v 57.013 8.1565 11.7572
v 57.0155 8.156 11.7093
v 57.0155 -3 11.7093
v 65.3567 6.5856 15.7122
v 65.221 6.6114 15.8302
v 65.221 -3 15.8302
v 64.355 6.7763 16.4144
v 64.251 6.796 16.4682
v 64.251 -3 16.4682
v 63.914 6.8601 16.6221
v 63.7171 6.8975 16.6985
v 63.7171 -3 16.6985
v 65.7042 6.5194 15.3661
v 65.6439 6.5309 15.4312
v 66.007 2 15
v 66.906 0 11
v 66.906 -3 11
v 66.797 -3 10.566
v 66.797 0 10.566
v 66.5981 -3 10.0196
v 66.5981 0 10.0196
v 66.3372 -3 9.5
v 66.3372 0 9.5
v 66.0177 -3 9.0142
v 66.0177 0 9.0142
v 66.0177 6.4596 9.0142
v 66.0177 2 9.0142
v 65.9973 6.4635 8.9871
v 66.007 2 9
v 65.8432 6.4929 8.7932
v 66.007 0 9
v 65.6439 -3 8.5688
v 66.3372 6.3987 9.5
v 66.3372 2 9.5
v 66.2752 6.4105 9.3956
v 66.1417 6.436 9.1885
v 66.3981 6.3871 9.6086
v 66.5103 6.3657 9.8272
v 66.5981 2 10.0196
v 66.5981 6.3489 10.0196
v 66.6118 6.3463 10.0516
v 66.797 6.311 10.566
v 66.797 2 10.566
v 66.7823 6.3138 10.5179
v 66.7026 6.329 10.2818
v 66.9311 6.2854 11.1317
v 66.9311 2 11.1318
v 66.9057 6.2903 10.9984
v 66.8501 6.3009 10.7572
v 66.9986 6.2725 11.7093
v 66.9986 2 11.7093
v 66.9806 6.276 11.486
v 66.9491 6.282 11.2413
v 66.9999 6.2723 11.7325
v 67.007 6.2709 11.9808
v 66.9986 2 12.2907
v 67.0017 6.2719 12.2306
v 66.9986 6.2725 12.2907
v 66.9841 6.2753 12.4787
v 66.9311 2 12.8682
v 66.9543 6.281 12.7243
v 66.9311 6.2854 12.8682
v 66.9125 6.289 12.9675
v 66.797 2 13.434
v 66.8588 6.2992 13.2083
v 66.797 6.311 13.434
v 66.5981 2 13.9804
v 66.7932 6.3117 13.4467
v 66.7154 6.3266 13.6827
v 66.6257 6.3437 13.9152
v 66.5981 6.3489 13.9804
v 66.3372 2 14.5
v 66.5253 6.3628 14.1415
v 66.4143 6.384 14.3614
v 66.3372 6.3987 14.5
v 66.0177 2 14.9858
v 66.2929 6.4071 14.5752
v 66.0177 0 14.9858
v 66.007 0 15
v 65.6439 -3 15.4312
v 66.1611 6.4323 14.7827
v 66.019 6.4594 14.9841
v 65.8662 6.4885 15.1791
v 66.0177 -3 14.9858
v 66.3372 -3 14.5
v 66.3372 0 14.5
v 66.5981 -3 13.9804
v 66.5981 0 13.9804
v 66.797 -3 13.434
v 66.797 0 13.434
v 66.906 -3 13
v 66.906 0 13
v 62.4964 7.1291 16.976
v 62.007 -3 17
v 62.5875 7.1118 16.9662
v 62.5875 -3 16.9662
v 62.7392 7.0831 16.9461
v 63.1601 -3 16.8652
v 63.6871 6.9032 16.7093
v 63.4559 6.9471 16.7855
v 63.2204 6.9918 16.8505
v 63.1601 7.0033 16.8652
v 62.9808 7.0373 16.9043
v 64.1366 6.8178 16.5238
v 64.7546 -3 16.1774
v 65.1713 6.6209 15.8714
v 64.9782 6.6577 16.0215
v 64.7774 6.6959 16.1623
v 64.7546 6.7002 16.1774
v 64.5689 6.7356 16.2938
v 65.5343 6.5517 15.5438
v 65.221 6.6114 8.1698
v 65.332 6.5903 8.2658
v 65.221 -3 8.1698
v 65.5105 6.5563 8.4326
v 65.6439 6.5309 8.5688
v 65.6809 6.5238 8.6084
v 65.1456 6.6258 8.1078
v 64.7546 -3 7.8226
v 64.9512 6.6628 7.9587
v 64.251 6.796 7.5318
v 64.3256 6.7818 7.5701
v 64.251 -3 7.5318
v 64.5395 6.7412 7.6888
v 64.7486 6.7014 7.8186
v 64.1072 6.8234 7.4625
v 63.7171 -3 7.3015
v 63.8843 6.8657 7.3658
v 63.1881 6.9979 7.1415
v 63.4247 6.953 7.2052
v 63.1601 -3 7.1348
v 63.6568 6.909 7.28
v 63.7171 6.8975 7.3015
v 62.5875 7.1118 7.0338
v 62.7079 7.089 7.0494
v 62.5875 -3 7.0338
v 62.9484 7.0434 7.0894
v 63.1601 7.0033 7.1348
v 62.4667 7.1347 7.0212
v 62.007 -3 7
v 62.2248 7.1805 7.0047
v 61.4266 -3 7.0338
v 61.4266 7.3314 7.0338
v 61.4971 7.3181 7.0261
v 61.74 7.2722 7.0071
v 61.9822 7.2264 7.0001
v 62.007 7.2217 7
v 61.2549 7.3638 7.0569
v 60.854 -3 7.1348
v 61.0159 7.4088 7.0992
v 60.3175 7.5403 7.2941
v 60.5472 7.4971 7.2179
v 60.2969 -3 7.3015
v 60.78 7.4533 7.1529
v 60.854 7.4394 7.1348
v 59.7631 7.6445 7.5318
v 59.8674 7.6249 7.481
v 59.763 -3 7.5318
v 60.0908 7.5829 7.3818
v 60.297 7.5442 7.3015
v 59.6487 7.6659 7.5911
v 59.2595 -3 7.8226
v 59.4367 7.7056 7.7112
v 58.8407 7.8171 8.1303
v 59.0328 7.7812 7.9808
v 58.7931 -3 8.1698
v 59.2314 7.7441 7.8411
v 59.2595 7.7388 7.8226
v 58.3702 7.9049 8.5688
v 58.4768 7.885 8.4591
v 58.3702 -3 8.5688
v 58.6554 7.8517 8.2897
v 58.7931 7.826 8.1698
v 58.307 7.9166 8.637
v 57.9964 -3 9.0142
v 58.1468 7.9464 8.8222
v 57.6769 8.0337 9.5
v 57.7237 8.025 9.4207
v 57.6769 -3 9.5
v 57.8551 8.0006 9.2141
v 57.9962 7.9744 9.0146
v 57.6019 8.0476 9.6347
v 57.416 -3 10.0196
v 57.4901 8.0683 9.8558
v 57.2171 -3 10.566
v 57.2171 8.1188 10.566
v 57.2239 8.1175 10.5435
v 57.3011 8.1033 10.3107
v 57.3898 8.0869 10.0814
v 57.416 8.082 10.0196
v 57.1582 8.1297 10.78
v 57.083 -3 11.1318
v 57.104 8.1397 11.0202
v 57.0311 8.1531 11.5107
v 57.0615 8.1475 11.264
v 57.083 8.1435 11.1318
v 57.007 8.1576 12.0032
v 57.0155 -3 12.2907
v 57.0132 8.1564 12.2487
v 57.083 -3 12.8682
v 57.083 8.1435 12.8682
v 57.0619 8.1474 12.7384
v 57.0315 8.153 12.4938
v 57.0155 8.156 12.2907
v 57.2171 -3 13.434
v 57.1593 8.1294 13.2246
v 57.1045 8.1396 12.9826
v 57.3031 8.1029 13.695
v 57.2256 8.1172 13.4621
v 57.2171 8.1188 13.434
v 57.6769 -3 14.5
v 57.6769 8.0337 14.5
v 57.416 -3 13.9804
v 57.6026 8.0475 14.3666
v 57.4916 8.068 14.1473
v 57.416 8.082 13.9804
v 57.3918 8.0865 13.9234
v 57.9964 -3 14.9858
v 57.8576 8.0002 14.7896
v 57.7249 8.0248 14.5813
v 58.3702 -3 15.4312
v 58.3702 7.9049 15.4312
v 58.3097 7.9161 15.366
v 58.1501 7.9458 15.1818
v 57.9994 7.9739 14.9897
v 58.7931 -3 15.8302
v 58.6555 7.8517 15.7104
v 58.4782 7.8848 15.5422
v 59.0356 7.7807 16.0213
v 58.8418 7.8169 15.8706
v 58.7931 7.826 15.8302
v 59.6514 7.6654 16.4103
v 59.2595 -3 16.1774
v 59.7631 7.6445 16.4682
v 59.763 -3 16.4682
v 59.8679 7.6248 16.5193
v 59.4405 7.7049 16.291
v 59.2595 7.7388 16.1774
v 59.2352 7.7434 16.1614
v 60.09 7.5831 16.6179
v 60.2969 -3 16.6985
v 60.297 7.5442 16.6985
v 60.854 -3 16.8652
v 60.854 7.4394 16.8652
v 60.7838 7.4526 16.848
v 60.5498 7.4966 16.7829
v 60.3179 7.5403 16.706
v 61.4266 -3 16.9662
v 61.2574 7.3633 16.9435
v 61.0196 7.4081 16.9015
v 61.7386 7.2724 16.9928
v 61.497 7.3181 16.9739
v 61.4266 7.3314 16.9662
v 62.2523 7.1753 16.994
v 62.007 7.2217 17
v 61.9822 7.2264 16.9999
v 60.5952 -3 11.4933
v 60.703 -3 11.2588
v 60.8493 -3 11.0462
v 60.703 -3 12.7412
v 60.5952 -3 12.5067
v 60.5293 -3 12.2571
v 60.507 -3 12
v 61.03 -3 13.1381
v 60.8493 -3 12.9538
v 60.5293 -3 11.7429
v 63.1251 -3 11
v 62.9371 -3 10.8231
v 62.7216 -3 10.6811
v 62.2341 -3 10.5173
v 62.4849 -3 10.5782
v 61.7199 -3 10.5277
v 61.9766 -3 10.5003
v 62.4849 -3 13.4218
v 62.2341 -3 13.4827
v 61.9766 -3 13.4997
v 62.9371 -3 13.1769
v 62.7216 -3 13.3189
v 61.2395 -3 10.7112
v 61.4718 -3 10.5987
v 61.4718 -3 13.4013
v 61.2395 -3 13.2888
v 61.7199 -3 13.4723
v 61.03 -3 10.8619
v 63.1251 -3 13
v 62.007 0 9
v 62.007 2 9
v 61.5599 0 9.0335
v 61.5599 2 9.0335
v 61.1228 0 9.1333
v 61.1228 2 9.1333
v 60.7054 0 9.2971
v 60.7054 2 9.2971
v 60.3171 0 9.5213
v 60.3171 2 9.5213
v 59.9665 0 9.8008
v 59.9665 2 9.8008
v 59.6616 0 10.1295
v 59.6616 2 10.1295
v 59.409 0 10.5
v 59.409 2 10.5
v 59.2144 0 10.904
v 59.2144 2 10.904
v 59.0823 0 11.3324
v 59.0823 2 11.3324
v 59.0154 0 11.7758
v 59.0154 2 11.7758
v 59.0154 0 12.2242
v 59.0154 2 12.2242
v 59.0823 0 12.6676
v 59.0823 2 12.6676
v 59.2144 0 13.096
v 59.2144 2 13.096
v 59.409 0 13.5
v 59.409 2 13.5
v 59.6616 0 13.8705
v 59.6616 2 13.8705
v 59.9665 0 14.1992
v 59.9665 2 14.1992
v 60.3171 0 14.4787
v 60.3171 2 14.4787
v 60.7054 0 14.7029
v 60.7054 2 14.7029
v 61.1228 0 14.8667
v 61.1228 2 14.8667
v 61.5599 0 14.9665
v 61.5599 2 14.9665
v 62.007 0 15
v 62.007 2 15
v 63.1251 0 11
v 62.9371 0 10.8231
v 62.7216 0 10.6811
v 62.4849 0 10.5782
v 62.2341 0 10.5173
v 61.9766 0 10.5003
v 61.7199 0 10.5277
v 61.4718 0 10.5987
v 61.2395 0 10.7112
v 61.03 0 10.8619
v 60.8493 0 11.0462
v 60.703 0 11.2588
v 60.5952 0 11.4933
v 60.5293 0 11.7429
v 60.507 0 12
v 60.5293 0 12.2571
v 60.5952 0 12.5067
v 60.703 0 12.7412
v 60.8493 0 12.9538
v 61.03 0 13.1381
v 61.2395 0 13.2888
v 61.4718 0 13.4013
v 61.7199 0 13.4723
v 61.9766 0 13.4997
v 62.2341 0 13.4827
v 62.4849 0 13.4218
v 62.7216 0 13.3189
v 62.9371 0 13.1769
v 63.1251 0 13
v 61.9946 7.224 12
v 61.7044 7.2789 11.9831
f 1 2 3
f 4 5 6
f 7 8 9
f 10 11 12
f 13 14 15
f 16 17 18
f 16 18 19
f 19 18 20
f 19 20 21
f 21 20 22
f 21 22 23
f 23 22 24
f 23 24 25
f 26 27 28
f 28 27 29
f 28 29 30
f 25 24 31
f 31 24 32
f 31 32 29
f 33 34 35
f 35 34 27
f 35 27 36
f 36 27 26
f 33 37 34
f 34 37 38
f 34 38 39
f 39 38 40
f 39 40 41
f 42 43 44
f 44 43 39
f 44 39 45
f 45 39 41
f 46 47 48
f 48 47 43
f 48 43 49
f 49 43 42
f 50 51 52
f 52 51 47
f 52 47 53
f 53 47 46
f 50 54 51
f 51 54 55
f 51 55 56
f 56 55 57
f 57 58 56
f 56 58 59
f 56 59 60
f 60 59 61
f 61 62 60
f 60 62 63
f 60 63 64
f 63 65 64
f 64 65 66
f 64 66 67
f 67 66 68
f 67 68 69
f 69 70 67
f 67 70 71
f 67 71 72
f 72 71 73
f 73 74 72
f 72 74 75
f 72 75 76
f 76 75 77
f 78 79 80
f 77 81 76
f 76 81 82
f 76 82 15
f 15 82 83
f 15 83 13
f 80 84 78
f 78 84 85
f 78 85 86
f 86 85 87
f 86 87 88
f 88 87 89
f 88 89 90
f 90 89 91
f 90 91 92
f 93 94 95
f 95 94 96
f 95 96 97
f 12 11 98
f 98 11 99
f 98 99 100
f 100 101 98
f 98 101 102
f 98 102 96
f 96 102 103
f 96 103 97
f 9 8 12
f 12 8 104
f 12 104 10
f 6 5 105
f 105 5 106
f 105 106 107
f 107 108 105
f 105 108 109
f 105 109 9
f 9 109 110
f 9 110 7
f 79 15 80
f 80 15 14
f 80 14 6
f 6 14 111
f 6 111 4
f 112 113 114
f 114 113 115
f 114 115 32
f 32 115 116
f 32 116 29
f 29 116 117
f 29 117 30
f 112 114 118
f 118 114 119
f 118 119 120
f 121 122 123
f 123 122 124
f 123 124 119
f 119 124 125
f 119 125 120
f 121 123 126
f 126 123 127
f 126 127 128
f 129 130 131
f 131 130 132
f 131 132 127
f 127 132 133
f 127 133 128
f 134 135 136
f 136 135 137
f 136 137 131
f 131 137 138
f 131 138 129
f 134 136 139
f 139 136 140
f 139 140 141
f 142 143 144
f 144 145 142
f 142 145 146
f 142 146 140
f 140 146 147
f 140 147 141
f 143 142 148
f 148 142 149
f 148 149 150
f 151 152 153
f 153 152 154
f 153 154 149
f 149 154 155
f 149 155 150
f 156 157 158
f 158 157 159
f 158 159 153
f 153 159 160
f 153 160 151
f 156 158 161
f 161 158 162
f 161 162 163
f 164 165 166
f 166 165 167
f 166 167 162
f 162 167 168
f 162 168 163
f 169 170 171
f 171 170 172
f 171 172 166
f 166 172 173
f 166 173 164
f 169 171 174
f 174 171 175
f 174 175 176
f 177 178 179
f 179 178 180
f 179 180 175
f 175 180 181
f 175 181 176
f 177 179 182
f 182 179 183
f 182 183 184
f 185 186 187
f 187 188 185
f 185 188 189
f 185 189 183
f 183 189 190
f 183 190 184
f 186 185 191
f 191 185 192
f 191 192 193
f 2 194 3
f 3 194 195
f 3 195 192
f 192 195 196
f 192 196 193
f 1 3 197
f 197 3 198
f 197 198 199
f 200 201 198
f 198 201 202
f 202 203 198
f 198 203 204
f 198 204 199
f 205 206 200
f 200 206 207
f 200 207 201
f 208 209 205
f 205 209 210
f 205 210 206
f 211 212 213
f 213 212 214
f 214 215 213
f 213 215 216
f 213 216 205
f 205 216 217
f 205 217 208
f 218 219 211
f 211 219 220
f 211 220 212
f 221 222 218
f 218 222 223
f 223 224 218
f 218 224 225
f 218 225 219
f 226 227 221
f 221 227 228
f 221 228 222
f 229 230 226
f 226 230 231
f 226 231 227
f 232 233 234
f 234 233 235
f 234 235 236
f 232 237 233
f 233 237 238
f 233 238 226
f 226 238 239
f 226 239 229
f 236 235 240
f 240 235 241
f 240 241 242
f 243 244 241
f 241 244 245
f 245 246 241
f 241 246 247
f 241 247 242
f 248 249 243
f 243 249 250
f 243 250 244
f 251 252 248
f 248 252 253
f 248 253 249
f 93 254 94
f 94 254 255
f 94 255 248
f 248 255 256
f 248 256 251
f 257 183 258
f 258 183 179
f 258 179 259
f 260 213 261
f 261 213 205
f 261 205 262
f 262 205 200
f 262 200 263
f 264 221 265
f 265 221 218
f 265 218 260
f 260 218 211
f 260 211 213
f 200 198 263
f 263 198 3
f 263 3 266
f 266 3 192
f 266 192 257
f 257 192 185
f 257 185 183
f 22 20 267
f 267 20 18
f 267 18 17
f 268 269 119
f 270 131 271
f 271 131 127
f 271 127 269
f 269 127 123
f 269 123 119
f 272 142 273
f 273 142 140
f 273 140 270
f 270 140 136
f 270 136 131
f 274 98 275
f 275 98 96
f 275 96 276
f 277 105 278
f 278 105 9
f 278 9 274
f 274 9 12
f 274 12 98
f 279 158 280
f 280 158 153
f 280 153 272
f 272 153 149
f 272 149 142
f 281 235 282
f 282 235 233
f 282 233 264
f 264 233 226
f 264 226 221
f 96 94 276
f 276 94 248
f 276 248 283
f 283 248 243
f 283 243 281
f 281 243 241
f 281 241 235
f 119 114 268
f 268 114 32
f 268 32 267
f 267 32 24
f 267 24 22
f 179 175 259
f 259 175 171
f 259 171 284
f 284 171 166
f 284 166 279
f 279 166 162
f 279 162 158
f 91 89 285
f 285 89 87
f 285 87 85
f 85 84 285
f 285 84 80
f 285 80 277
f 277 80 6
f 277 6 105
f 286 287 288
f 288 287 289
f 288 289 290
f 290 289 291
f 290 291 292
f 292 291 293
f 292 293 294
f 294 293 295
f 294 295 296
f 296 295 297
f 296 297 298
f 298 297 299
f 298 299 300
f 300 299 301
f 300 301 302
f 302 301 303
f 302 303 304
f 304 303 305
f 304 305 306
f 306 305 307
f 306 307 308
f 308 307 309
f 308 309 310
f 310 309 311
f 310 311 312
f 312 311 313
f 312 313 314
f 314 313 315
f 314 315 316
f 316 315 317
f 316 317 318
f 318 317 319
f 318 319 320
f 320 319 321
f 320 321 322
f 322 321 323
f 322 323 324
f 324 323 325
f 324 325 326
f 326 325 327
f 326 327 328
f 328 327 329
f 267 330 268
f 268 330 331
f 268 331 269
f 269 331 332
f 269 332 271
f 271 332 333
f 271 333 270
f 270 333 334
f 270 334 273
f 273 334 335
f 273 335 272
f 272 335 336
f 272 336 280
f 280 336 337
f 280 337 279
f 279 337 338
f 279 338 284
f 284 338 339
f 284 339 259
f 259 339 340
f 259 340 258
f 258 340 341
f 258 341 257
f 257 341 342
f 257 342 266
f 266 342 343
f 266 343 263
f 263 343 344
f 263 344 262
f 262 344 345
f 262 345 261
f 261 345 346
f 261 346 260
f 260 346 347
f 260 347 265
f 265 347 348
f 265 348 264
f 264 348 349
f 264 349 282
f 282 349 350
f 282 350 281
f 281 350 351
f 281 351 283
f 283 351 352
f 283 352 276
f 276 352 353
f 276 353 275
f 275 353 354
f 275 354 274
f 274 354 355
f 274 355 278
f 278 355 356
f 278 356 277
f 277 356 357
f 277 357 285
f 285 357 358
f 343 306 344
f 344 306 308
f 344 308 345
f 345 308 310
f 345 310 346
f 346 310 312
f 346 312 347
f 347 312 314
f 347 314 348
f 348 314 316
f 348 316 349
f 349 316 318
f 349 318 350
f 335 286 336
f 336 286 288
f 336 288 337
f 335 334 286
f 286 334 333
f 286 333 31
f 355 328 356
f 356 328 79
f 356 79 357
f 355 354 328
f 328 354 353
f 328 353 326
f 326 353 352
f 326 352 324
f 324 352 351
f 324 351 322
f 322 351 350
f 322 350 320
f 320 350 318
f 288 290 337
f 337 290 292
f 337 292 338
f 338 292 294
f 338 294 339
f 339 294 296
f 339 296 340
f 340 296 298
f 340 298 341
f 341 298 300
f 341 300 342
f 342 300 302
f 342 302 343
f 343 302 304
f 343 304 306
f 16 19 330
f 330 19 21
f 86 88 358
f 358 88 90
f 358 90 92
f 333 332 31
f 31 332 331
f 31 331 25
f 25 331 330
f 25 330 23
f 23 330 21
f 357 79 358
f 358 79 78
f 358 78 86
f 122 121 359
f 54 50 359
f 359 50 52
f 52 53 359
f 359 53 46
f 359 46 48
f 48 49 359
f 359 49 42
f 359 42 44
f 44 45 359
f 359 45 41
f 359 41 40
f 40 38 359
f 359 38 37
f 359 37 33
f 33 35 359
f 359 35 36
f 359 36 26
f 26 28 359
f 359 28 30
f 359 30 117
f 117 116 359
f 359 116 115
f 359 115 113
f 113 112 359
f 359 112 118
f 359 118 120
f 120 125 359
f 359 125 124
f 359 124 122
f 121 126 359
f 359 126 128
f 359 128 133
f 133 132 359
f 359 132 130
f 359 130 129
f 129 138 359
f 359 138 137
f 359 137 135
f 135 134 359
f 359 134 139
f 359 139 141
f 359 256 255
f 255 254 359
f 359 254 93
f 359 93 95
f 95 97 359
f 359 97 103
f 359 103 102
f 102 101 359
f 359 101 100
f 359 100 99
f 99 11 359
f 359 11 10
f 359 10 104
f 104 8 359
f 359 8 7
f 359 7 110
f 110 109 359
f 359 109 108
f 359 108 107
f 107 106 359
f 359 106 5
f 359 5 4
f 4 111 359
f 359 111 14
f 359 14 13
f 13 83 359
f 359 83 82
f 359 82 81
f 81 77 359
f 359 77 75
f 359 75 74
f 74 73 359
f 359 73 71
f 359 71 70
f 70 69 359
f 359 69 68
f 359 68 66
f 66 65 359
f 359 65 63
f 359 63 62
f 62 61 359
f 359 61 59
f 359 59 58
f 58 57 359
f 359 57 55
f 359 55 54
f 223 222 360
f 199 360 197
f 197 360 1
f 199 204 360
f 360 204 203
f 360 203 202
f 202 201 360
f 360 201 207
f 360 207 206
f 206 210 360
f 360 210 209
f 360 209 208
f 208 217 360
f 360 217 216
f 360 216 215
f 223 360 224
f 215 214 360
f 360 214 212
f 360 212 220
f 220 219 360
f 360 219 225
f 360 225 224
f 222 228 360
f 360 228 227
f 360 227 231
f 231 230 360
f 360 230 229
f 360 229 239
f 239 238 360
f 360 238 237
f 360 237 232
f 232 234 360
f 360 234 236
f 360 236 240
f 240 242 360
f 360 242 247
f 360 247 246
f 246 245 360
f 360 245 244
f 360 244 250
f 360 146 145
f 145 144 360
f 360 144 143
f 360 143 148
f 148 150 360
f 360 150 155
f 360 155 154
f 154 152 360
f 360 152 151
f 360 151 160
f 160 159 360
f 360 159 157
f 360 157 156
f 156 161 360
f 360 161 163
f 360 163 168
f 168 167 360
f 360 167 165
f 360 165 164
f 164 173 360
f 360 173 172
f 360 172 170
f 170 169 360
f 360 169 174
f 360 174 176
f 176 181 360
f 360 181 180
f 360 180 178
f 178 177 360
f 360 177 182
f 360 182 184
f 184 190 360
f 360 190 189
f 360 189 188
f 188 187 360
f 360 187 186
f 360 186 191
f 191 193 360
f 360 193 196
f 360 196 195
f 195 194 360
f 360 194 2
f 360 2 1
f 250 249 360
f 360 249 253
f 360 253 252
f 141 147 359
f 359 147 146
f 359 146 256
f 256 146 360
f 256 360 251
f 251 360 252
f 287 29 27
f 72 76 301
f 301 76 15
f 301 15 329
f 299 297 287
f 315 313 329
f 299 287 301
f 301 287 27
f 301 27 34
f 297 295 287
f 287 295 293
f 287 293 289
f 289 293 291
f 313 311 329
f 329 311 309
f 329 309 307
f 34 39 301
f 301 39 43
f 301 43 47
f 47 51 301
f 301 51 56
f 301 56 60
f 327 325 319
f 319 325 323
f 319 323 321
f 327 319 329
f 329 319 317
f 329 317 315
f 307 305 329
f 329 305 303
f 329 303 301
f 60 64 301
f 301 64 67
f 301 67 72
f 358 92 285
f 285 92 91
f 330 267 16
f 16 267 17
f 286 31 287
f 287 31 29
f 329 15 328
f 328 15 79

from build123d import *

# Parameters (mm, degrees)
BOSS_EXTRUDE1_DEPTH     = 6
SHELL1_T                = 2
BOSS_EXTRUDE2_DEPTH     = 12
CUT_EXTRUDE1_DEPTH      = 105.548062061
CUT_EXTRUDE1_DEPTH_BACK = 105.548062061
SKETCH4_OUTSIDE_W       = 127.703
SKETCH4_OUTSIDE_H       = 47.702
SKETCH4_OUTSIDE_R       = 5
BOSS_EXTRUDE3_START     = -3
SKETCH5_R               = 5
BOSS_EXTRUDE3_DEPTH     = 3
SKETCH8_W               = 2
SKETCH8_H               = 3
CUT_EXTRUDE2_DEPTH      = 20.507580381


with BuildPart() as part:
    # Sketch1 → Boss-Extrude1 (new, symmetric)
    with BuildSketch(Plane.XY):
        with BuildLine():
            add(Edge.make_bspline(
                [(0, 0), (-0.020523105, 1.211959263), (0.67437266, 2.857215342), (1.905623999, 4.78389108), (3.228212227, 6.302382051), (4.893886607, 7.740810658), (7.226107258, 9.264300756), (10.552653396, 10.717178582), (14.932037071, 11.831530653), (19.991297272, 12.255898832), (25.003683181, 12.218808276), (31.681712165, 11.857586647), (40.030453626, 10.974271434), (50.024814986, 9.447886993), (60.008390595, 7.611152922), (69.999350586, 5.696721586), (83.333766276, 3.168852276), (93.333116862, 1.265573862), (100, 0)],
                knots=[0, 0, 0, 0, 0.032626759, 0.049882871, 0.06427589, 0.089250813, 0.111667998, 0.142584384, 0.191135501, 0.238340392, 0.285329255, 0.332381604, 0.426846937, 0.521876031, 0.61736406, 0.713023045, 0.80868203, 1, 1, 1, 1], degree=3))
            add(Edge.make_bspline(
                [(0, 0), (0.036655271, -0.696109017), (0.772960092, -1.382467179), (1.96178056, -1.978761756), (3.324506087, -2.315299728), (4.988662397, -2.651222943), (7.325816413, -2.960951495), (10.662744647, -3.183232196), (14.999725999, -3.252330394), (19.999719582, -3.317988032), (25.00025256, -3.335705262), (31.666881467, -3.233674), (40.002372591, -3.118326111), (50.001627017, -2.749659581), (60.002529003, -2.322582922), (69.997554247, -1.759547439), (83.37248003, -1.331343132), (93.243437862, 0.963839901), (100, 0)],
                knots=[0, 0, 0, 0, 0.017855622, 0.028908701, 0.039175102, 0.059339021, 0.079290733, 0.109028899, 0.158476478, 0.20791091, 0.257341883, 0.306776316, 0.405654078, 0.504572951, 0.603530351, 0.702515599, 0.801543493, 1, 1, 1, 1], degree=3))
        make_face()
    extrude(amount=BOSS_EXTRUDE1_DEPTH, both=True)

    # Shell1
    shell1_openings = [part.faces().sort_by_distance(p)[0] for p in [
        (38.486858992, 3.393824358, 6),
        (38.486858992, 3.393824358, -6),
    ]]
    offset(amount=SHELL1_T, openings=shell1_openings)

    # Sketch3 → Boss-Extrude2 (add)
    with BuildSketch(Plane.XY.offset(6)):
        with BuildLine():
            add(Edge.make_bspline(
                [(0, 0), (0.036655271, -0.696109017), (0.772960092, -1.382467179), (1.96178056, -1.978761756), (3.324506087, -2.315299728), (4.988662397, -2.651222943), (7.325816413, -2.960951495), (10.662744647, -3.183232196), (14.999725999, -3.252330394), (19.999719582, -3.317988032), (25.00025256, -3.335705262), (31.666881467, -3.233674), (40.002372591, -3.118326111), (50.001627017, -2.749659581), (60.002529003, -2.322582922), (69.997554247, -1.759547439), (83.37248003, -1.331343132), (93.243437862, 0.963839901), (100, 0)],
                knots=[0, 0, 0, 0, 0.017855622, 0.028908701, 0.039175102, 0.059339021, 0.079290733, 0.109028899, 0.158476478, 0.20791091, 0.257341883, 0.306776316, 0.405654078, 0.504572951, 0.603530351, 0.702515599, 0.801543493, 1, 1, 1, 1], degree=3))
            add(Edge.make_bspline(
                [(100, 0), (93.333116862, 1.265573862), (83.333766276, 3.168852276), (69.999350586, 5.696721586), (60.008390595, 7.611152922), (50.024814986, 9.447886993), (40.030453626, 10.974271434), (31.681712165, 11.857586647), (25.003683181, 12.218808276), (19.991297272, 12.255898832), (14.932037071, 11.831530653), (10.552653396, 10.717178582), (7.226107258, 9.264300756), (4.893886607, 7.740810658), (3.228212227, 6.302382051), (1.905623999, 4.78389108), (0.67437266, 2.857215342), (-0.020523105, 1.211959263), (0, 0)],
                knots=[0, 0, 0, 0, 0.19131797, 0.286976955, 0.38263594, 0.478123969, 0.573153063, 0.667618396, 0.714670745, 0.761659608, 0.808864499, 0.857415616, 0.888332002, 0.910749187, 0.93572411, 0.950117129, 0.967373241, 1, 1, 1, 1], degree=3))
        make_face()
    extrude(amount=BOSS_EXTRUDE2_DEPTH)

    # Sketch4 outside → Cut-Extrude1 (cut, two sides: drawn at the far end of the back side and taken through both)
    with BuildSketch(Plane(origin=(0, 0, 0), x_dir=(1, 0, 0), z_dir=(0, 1, 0)).offset(-CUT_EXTRUDE1_DEPTH_BACK)):
        with Locations((49.9995, -6)):
            Rectangle(SKETCH4_OUTSIDE_W, SKETCH4_OUTSIDE_H)
        with Locations(Location((62.007047228, -12, 0), (0, 0, 270))):
            Circle(SKETCH4_OUTSIDE_R, mode=Mode.SUBTRACT)
    extrude(amount=CUT_EXTRUDE1_DEPTH + CUT_EXTRUDE1_DEPTH_BACK, mode=Mode.SUBTRACT)

    # Sketch5 → Boss-Extrude3 (add)
    with BuildSketch(Plane(origin=(0, 0, 0), x_dir=(1, 0, 0), z_dir=(0, 1, 0)).offset(BOSS_EXTRUDE3_START)):
        with Locations(Location((62.007047228, -12, 0), (0, 0, 270))):
            Circle(SKETCH5_R)
    extrude(amount=BOSS_EXTRUDE3_DEPTH)

    # Sketch6 → Cut-Revolve3 (revolve, cut)
    with BuildSketch(Plane(origin=(62.007047228, 0, 0), x_dir=(0, 0, -1), z_dir=(1, 0, 0))):
        Polygon((-12, 2), (-12, -3), (-10.5, -3), (-10.5, 0), (-9, 0), (-9, 2), align=None)
    revolve(axis=Axis((62.007047228, 2, 12), (0, -1, 0)), mode=Mode.SUBTRACT)

    # Sketch8 → Cut-Extrude2 (cut, through all)
    with BuildSketch(Plane(origin=(62.007047228, 0, 0), x_dir=(0, 0, -1), z_dir=(1, 0, 0))):
        Polygon((-15, 0), (-13, 0), (-11, 0), (-9, 0), (-9, 2), (-15, 2), align=None)
        with Locations((-12, -1.5)):
            Rectangle(SKETCH8_W, SKETCH8_H)
    extrude(amount=CUT_EXTRUDE2_DEPTH, mode=Mode.SUBTRACT)


solid = part.part
